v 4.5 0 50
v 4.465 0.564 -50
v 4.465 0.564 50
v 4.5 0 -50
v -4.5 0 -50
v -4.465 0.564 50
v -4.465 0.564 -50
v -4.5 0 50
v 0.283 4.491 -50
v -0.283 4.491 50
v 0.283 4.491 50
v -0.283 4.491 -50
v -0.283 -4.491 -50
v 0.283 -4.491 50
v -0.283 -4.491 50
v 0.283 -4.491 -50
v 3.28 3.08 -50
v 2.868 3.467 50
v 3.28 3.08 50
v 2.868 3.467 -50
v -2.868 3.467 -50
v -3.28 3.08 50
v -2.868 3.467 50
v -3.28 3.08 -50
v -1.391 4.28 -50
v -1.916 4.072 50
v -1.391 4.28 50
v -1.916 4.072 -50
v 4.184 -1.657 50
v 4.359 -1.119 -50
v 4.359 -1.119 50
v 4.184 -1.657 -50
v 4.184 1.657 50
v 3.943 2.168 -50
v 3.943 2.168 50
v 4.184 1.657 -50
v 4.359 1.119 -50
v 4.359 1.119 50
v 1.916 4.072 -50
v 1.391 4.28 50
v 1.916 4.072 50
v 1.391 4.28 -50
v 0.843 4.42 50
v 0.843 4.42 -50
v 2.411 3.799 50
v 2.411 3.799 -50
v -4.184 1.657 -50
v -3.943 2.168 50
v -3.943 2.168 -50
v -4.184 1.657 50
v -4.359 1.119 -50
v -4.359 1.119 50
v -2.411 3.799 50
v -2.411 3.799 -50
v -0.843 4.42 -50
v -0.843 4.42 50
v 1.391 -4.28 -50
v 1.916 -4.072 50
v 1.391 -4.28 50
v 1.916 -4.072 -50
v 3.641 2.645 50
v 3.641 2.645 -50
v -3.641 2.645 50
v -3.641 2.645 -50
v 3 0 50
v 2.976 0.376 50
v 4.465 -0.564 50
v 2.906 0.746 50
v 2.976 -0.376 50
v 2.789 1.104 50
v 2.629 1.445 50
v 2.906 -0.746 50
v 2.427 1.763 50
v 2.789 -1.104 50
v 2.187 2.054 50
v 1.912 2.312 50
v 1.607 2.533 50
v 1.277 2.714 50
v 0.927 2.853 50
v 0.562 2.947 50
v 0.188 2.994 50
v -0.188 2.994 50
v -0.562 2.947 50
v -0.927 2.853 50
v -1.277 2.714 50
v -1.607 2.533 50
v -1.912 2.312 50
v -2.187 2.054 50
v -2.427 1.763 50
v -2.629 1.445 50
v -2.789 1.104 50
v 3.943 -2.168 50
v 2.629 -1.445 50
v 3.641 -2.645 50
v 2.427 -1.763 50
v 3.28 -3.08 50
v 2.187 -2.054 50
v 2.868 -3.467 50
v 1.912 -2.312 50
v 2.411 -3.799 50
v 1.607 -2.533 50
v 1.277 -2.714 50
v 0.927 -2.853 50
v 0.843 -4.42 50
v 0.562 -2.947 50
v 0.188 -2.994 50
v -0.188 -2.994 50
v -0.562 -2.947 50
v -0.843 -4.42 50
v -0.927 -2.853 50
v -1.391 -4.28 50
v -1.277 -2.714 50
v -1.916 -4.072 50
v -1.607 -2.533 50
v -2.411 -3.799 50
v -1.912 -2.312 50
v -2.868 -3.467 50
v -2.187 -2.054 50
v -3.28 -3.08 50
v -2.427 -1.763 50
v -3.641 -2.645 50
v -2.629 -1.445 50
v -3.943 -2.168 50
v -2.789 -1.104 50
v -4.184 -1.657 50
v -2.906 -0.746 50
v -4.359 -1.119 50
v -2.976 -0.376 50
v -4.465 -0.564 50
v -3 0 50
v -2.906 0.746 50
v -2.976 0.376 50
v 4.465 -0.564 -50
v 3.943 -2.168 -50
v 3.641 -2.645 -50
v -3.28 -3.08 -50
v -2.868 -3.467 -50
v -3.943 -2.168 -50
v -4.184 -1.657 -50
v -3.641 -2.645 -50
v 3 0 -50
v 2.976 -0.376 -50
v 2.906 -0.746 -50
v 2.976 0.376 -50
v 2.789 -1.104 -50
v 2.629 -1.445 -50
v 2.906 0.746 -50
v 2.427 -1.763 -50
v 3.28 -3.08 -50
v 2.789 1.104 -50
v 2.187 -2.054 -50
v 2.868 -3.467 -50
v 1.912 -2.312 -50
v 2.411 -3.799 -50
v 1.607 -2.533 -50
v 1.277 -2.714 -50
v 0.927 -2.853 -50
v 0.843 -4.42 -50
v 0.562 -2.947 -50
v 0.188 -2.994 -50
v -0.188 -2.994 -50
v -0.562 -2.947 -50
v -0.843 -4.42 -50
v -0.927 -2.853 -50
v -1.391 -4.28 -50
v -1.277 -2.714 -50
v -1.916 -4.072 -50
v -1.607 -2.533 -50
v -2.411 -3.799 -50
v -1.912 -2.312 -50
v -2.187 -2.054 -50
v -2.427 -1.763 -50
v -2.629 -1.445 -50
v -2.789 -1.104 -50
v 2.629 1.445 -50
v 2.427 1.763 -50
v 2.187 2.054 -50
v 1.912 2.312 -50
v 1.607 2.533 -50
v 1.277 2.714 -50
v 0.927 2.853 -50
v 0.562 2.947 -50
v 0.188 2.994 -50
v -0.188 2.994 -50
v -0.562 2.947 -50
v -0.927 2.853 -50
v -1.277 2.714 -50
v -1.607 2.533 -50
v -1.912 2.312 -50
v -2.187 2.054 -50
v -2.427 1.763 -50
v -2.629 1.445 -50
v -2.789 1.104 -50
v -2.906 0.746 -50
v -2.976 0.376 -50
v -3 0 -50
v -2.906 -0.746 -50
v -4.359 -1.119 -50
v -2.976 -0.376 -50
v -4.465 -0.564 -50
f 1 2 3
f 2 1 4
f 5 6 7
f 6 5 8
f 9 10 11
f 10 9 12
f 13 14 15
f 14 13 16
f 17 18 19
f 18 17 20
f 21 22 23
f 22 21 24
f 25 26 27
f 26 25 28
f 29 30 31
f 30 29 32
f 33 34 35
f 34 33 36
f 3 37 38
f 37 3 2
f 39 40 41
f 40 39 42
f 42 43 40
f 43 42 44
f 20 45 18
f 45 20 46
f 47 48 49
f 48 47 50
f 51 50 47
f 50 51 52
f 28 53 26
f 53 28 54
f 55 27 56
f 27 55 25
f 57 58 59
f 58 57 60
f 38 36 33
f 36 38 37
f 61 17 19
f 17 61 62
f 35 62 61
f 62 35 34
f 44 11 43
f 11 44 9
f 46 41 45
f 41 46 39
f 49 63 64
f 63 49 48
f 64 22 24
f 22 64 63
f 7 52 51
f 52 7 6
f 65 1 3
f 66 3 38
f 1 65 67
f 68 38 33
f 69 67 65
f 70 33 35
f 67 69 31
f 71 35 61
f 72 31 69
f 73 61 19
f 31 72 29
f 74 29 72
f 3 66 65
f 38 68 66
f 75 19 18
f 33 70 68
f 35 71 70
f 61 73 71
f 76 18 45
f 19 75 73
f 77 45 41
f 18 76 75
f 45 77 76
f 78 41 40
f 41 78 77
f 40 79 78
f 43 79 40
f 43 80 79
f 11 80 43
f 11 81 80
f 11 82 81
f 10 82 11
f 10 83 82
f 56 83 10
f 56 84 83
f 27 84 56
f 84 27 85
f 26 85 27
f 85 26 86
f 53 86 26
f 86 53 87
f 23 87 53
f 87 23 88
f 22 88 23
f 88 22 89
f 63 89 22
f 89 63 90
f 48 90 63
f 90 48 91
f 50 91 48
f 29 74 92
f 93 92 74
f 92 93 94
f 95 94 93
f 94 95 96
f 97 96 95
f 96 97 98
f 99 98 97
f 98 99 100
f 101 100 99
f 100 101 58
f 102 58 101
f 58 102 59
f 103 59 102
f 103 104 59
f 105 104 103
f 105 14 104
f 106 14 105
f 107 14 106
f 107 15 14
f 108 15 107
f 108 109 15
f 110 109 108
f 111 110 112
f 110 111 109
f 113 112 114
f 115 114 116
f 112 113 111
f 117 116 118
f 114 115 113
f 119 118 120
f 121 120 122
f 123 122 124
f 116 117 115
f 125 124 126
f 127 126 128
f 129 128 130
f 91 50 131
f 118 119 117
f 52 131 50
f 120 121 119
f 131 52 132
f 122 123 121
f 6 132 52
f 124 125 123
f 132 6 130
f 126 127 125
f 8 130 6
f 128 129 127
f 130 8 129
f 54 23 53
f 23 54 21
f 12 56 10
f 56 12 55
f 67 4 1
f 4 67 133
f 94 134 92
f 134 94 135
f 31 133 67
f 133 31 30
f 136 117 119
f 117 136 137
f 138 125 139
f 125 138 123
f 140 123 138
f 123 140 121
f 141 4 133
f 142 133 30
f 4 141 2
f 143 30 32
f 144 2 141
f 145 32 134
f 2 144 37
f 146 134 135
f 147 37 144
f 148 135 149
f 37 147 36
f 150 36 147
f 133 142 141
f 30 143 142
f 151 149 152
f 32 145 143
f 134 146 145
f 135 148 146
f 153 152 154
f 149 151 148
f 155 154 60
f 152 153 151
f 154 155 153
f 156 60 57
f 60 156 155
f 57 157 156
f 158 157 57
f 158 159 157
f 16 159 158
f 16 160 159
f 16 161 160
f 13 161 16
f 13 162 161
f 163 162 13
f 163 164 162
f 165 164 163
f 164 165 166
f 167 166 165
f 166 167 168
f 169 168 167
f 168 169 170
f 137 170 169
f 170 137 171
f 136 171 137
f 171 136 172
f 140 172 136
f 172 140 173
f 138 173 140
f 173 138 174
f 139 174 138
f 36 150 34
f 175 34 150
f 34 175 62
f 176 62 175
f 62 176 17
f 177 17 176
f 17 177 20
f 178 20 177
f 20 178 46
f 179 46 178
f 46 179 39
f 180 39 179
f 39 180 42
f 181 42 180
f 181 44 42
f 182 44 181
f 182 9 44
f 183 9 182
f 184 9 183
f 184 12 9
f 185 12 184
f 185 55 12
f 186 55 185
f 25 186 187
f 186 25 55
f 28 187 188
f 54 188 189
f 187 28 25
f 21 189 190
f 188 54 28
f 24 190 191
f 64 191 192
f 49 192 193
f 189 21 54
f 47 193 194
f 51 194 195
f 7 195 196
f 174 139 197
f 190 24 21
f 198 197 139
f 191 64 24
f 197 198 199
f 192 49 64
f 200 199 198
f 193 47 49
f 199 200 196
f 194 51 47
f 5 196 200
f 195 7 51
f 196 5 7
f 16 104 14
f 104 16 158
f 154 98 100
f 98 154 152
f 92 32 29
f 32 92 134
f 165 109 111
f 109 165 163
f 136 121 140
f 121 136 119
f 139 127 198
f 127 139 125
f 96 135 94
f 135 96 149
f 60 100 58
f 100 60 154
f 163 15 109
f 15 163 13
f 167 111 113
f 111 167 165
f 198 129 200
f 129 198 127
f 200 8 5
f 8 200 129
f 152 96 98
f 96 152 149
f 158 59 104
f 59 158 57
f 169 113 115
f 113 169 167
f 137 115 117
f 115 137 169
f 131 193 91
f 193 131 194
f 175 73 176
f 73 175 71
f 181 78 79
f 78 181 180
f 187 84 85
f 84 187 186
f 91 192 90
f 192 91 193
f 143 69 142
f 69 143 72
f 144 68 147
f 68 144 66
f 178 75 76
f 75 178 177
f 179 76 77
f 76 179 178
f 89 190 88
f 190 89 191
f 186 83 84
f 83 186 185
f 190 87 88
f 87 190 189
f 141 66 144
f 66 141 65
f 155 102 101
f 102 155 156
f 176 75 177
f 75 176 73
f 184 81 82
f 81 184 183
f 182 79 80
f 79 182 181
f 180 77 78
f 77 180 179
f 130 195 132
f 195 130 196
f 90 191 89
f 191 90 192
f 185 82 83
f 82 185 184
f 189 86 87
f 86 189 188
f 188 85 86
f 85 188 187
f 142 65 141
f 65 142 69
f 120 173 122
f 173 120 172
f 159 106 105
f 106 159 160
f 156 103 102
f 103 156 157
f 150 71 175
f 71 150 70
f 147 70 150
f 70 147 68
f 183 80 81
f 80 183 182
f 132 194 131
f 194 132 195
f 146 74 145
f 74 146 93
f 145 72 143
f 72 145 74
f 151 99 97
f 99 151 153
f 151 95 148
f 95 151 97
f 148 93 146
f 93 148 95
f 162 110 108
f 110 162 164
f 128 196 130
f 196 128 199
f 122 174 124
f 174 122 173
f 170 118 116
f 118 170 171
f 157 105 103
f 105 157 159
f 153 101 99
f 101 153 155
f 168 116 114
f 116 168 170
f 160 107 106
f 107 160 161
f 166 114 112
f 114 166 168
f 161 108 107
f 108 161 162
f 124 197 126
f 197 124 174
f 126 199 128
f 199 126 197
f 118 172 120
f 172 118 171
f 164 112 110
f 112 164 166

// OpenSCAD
$fn = 50;


difference() {
	union() {
		translate(v = [0, 0, -50.0000000000]) {
			cylinder(h = 100, r = 4.5000000000);
		}
	}
	union() {
		translate(v = [0, 0, -100.0000000000]) {
			cylinder(h = 200, r = 3);
		}
	}
}
